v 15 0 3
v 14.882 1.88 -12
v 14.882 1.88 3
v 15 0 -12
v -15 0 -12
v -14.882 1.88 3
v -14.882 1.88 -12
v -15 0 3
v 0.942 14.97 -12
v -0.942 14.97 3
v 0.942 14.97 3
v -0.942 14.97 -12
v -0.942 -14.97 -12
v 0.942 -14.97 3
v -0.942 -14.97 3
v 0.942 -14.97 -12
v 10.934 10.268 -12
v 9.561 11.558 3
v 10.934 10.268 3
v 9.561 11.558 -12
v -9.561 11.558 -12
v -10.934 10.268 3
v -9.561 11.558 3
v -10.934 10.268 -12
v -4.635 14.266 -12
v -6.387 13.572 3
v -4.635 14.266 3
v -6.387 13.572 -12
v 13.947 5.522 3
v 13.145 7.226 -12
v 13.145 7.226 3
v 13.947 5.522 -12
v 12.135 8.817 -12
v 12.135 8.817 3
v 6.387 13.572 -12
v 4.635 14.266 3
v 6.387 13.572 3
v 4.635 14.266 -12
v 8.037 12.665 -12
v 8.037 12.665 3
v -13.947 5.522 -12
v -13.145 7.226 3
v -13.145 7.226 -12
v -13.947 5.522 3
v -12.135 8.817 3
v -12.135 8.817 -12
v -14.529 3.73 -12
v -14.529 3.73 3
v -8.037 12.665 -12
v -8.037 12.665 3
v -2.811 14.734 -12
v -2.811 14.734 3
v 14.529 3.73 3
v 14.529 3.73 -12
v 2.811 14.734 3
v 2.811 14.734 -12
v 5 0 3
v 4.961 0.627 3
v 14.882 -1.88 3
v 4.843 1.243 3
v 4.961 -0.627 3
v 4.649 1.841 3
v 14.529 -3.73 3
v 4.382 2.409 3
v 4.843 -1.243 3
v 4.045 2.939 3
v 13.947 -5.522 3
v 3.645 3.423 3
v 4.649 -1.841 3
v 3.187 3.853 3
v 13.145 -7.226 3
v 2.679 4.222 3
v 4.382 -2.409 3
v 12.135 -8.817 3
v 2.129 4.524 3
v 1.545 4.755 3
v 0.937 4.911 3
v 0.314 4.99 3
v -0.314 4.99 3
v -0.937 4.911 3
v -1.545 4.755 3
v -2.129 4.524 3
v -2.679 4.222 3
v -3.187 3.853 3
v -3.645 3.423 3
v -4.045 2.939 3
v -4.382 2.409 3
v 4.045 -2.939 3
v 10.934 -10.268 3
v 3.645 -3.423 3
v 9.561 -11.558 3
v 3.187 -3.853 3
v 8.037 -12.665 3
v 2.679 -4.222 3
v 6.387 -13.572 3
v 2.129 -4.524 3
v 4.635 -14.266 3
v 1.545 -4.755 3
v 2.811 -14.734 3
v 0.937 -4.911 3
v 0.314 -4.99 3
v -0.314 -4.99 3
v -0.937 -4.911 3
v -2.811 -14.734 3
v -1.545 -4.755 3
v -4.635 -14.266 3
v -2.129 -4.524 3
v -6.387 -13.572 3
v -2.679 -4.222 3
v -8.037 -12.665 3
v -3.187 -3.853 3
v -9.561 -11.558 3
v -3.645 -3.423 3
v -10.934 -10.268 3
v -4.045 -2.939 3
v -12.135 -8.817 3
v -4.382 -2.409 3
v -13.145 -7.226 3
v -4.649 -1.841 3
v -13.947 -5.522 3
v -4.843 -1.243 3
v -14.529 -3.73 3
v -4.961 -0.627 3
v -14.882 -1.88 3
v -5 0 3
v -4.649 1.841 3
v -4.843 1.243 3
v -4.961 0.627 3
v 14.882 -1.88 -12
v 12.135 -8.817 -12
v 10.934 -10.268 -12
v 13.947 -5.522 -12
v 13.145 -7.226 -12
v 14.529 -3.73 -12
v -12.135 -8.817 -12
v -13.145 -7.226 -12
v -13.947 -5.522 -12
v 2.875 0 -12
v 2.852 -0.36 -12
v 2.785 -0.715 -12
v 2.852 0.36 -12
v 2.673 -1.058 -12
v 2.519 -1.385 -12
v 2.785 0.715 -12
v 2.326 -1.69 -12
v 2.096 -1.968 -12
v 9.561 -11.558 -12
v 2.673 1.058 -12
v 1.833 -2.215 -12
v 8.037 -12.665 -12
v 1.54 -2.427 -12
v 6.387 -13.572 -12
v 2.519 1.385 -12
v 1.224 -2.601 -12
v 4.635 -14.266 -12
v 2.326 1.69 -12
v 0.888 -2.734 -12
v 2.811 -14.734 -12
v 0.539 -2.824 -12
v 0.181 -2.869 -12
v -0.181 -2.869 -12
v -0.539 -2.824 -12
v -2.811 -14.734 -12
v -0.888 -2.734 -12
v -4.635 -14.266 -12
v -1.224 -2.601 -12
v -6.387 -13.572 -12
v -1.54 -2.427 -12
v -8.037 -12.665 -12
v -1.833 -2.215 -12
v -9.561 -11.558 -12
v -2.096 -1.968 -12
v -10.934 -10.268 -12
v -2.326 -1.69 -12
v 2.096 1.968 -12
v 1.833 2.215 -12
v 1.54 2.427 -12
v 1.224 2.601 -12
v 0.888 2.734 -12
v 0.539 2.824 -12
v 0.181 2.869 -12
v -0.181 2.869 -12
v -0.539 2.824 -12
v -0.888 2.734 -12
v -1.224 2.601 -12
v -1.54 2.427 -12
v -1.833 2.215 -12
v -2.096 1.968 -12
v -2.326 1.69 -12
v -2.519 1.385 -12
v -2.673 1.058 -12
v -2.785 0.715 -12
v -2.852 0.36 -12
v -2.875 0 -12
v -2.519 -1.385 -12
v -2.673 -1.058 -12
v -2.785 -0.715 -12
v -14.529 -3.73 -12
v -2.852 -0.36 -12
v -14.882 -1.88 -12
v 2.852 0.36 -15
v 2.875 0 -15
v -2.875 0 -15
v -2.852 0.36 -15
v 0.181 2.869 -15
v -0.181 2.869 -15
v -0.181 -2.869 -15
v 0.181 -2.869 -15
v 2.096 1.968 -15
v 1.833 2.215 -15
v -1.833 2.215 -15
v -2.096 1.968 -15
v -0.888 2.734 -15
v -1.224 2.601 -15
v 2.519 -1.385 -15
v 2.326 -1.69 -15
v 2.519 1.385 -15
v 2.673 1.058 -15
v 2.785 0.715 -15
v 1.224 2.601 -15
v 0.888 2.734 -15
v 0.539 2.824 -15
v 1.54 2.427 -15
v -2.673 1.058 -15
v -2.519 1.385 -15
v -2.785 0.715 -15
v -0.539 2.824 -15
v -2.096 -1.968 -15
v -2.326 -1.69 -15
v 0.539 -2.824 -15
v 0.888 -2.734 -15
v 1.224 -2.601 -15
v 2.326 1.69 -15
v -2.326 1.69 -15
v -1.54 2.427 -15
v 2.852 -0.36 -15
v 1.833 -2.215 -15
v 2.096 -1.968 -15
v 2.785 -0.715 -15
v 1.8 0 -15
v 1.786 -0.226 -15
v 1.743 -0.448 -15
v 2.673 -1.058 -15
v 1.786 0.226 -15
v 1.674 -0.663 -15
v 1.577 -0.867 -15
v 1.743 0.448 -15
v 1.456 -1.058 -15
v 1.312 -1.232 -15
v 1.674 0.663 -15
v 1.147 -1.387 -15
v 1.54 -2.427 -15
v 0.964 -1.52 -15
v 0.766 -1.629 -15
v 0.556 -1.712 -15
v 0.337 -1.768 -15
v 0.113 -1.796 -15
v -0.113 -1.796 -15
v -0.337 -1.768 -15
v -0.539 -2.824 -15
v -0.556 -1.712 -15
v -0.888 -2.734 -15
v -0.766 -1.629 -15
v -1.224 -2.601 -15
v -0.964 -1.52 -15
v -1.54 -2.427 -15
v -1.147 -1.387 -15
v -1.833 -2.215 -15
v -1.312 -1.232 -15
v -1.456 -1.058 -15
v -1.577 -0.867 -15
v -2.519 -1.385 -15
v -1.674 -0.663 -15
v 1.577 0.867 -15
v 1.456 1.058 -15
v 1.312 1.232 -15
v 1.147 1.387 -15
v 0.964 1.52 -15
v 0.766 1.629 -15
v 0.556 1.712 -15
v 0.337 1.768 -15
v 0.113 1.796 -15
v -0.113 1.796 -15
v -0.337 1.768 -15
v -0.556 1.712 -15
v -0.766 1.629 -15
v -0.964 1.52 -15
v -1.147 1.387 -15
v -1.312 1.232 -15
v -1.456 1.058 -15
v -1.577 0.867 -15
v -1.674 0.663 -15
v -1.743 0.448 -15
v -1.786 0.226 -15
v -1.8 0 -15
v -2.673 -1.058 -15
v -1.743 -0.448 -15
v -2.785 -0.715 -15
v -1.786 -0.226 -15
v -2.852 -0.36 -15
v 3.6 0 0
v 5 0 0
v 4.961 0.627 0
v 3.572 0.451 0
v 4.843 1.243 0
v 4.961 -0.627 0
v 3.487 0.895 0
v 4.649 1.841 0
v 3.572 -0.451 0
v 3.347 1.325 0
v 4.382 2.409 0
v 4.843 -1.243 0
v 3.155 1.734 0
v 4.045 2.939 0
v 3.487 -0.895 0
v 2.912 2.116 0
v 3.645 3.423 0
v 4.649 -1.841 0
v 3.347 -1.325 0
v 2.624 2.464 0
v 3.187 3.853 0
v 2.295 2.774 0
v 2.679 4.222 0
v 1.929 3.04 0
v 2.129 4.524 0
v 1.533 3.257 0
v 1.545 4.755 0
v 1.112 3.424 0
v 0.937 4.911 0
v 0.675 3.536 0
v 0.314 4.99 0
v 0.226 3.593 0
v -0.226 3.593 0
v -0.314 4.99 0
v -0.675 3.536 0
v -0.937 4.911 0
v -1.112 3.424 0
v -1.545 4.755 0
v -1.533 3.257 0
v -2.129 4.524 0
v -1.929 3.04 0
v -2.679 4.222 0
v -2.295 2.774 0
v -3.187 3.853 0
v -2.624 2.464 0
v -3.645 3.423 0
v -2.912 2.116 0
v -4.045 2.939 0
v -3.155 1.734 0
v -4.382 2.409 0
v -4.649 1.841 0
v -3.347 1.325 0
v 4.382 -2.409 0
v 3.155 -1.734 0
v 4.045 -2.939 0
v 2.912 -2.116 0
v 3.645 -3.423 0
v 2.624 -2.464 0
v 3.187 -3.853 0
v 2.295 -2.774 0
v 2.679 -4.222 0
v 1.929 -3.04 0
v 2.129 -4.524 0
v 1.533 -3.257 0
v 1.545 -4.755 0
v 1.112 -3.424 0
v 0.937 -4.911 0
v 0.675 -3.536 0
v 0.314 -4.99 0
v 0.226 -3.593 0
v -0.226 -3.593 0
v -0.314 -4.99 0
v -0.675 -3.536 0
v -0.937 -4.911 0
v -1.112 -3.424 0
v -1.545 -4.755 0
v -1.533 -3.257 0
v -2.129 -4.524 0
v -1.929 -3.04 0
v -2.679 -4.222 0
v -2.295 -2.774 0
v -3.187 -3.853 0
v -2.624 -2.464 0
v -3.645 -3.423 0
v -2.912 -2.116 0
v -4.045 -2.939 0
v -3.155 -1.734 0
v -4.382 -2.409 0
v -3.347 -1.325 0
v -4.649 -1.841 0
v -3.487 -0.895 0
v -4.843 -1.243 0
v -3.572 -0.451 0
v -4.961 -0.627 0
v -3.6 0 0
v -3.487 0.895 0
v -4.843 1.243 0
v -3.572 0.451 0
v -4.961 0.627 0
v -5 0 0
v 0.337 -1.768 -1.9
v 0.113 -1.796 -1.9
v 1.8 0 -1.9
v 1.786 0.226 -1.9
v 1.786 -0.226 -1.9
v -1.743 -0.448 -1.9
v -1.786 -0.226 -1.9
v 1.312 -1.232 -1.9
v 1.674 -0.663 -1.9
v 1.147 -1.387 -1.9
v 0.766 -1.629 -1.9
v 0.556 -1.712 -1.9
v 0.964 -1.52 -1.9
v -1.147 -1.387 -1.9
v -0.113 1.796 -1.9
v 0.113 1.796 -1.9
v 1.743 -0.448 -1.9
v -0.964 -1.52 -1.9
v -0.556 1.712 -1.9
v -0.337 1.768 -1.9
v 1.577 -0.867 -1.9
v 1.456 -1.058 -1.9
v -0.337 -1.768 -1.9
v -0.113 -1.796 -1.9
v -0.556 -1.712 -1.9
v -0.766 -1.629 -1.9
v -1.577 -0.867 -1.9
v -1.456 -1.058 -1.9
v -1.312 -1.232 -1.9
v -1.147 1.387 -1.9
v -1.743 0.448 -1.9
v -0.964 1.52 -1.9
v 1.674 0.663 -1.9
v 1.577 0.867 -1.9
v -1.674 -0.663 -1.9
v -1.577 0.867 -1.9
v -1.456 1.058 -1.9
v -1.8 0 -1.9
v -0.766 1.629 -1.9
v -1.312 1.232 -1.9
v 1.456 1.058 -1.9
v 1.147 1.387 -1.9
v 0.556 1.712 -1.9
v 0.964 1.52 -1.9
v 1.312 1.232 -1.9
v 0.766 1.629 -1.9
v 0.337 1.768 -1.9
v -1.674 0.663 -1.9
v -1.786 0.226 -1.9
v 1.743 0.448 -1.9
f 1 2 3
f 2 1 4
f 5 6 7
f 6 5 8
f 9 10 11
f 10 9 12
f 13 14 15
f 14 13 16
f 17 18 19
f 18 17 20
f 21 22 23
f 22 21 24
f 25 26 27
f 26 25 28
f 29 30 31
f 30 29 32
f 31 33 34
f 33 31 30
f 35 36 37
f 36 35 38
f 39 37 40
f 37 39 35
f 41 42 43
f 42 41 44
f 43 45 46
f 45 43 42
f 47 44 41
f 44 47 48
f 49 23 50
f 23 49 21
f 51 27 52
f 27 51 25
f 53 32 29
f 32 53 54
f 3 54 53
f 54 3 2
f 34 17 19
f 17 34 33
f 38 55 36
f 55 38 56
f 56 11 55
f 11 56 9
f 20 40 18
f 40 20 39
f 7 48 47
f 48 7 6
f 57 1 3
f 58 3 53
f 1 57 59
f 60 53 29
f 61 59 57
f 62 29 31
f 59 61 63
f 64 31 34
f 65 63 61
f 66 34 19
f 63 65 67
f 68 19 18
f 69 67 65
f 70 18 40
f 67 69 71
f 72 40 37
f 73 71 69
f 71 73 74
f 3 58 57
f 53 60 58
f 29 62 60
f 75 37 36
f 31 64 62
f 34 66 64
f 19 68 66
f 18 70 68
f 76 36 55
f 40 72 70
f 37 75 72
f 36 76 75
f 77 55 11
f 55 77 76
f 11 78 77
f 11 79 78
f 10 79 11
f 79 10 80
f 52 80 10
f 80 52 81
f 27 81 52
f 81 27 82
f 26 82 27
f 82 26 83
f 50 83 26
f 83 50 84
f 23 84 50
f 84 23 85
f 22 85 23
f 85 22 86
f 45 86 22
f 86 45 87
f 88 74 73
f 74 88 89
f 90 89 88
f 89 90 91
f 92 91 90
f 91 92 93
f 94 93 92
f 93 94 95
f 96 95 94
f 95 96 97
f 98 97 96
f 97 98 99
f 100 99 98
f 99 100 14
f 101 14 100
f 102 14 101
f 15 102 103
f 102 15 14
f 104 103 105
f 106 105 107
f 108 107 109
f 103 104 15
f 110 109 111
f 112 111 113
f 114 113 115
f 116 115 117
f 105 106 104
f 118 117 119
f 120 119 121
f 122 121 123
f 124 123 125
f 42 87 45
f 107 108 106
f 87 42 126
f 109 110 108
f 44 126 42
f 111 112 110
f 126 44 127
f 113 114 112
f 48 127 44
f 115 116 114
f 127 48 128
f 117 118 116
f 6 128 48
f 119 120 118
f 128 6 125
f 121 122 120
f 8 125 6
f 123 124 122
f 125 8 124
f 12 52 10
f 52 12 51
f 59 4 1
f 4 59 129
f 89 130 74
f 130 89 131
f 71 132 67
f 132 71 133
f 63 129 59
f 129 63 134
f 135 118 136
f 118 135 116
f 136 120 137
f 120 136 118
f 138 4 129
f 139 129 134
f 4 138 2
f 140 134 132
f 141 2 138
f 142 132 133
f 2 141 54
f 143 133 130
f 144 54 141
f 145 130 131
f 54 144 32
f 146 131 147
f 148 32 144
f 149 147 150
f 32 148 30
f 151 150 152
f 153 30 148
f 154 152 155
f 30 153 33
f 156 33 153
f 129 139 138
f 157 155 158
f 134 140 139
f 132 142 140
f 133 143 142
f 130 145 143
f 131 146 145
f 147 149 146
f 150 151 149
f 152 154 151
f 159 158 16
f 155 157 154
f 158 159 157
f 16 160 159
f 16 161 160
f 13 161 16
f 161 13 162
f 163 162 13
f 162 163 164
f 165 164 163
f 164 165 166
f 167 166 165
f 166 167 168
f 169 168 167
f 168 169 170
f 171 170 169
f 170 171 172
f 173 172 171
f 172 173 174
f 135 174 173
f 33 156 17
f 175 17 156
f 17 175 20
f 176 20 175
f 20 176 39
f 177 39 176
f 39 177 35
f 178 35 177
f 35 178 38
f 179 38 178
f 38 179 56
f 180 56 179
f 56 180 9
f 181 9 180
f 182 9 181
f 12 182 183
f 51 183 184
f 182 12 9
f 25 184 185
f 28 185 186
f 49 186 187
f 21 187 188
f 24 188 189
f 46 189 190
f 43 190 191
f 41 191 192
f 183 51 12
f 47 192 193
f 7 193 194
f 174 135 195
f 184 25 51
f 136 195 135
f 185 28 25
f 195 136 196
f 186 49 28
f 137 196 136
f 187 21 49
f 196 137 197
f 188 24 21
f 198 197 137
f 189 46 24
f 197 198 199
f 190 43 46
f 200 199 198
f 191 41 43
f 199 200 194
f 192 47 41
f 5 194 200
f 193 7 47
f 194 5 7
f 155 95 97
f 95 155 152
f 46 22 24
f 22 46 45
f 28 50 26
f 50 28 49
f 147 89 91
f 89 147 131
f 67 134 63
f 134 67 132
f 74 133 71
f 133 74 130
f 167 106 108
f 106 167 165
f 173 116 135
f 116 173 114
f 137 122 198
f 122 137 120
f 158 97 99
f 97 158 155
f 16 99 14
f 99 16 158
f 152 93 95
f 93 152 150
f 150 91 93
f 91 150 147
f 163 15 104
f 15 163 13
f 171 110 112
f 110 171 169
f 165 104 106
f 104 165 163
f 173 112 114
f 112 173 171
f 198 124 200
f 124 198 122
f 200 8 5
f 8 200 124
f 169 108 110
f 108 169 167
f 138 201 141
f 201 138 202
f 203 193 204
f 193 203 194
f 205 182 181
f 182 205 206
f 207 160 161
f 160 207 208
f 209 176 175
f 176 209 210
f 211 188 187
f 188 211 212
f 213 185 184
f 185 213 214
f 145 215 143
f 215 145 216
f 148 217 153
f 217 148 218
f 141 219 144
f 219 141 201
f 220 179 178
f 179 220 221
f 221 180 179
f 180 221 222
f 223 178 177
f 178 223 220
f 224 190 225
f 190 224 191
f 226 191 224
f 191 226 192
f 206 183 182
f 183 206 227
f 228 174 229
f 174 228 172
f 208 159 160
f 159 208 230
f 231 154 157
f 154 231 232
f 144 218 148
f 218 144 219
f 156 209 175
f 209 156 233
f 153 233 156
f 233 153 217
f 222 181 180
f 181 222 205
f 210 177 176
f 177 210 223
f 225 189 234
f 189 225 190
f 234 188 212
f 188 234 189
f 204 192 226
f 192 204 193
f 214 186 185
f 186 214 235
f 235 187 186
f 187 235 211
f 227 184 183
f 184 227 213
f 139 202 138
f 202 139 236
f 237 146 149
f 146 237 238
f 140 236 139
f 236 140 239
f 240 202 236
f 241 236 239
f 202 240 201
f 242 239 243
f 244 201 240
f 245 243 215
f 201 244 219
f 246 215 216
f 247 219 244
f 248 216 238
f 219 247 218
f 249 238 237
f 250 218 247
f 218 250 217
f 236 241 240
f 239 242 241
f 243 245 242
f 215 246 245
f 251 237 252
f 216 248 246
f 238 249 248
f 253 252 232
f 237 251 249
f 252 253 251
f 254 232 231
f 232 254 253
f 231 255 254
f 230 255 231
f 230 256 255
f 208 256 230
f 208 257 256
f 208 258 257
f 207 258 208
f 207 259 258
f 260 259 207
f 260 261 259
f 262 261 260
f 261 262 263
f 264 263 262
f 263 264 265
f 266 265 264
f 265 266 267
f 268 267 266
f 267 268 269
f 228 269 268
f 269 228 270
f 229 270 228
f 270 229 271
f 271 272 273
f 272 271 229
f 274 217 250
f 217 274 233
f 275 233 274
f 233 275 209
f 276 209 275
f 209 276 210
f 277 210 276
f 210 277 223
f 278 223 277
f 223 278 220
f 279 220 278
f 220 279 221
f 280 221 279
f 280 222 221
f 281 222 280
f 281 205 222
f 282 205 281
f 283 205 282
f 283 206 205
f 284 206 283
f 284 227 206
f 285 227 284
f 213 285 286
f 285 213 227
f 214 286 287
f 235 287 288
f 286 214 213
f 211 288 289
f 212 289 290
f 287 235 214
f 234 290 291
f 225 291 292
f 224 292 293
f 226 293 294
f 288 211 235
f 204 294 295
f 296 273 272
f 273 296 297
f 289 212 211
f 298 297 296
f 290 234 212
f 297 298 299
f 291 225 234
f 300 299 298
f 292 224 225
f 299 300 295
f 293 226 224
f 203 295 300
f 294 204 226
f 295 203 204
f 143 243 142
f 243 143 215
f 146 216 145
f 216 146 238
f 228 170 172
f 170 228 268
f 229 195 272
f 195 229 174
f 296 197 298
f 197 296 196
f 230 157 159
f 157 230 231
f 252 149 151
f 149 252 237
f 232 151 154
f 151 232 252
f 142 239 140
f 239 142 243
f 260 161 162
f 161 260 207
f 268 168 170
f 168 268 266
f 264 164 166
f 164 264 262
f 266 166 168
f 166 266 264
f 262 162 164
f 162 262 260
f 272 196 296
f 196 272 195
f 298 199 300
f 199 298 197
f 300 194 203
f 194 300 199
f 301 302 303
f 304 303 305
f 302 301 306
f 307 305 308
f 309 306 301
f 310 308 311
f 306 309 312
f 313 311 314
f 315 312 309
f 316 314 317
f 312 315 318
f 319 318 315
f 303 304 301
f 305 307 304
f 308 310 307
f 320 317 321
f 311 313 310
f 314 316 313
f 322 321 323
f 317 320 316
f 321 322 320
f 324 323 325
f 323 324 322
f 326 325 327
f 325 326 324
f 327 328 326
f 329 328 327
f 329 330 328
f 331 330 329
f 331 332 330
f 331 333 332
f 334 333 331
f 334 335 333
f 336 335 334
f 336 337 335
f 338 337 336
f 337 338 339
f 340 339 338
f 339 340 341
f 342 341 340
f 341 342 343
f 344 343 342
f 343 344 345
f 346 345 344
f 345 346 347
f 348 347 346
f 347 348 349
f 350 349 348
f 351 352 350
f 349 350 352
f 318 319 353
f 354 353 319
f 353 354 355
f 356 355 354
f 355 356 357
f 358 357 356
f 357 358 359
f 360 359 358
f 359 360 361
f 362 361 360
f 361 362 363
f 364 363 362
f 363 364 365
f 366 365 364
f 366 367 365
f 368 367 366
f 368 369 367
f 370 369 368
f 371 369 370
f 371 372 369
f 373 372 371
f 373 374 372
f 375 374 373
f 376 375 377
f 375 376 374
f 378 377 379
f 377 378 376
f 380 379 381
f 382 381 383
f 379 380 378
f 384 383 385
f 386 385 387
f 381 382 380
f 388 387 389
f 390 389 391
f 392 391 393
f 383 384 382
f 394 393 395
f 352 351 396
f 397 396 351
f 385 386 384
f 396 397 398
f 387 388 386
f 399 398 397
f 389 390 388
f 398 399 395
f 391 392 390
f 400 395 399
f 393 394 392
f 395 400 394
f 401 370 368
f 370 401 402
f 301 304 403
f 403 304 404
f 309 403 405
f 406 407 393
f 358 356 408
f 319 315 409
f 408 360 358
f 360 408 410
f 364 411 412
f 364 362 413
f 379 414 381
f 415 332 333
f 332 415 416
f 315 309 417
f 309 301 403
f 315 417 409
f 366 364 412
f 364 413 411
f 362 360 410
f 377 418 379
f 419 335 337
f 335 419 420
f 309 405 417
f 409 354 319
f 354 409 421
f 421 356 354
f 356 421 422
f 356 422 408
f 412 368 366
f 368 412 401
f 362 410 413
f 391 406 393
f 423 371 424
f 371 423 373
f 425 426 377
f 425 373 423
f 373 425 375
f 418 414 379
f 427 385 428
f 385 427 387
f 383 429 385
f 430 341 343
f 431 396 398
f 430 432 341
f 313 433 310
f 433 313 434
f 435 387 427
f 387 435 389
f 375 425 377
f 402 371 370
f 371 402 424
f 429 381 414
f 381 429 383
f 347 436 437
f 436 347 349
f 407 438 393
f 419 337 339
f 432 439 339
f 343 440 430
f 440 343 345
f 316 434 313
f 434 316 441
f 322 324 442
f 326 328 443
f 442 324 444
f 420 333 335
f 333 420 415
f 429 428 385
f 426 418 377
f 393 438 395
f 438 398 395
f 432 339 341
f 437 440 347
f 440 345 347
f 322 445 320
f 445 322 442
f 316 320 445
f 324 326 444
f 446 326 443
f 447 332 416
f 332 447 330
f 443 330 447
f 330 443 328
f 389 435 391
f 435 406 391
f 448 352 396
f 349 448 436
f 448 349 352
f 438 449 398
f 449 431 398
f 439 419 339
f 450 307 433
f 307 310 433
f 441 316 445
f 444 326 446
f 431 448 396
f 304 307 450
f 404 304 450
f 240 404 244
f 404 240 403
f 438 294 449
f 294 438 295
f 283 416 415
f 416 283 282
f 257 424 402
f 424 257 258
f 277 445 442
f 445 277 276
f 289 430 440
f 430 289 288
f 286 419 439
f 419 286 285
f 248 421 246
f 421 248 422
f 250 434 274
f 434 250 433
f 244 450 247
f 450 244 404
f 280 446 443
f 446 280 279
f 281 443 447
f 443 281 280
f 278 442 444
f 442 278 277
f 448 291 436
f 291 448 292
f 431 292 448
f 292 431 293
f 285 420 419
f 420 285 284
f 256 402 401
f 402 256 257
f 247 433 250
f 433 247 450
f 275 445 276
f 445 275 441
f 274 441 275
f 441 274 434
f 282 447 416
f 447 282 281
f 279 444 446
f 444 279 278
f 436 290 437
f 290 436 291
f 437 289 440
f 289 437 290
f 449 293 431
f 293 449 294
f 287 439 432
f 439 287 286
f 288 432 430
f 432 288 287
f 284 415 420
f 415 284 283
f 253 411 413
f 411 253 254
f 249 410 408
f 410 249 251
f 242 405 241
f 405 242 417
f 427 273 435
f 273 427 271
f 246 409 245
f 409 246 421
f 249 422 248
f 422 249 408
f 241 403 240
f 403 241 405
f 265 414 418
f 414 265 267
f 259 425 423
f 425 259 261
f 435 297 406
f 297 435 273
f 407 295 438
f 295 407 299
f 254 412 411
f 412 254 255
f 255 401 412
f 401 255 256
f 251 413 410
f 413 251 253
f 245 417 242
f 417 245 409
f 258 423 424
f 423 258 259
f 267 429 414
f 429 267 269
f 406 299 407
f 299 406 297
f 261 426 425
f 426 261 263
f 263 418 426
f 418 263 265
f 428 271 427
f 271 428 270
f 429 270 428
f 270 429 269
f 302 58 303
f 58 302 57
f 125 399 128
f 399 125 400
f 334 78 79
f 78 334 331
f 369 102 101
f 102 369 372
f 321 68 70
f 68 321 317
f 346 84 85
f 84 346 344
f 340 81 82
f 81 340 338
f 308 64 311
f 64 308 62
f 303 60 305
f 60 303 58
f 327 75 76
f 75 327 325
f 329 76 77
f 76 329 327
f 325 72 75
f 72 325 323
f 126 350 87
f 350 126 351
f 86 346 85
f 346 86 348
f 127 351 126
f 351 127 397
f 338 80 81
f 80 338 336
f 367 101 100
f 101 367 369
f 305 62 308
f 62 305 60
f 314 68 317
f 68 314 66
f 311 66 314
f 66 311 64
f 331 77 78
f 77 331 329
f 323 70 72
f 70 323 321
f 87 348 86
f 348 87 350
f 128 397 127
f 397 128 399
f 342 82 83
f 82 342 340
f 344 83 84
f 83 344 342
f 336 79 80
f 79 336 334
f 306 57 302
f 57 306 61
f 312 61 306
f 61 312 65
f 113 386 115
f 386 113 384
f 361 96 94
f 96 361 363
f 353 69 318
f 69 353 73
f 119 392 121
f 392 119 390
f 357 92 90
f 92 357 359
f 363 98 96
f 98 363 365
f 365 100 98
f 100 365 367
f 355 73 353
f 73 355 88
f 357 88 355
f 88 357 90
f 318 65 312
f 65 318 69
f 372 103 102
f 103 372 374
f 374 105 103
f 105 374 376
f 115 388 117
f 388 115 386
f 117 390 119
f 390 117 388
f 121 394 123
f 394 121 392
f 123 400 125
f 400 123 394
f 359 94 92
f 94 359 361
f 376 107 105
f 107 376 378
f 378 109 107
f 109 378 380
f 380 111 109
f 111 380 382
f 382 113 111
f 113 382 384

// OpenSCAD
$fn = 50;

difference() {
	union() {
		translate(v = [0, 0, -12.0]) {
			cylinder(h = 15, r = 15.0);
		}
		#translate(v = [0, 0, -15.0]) {
			cylinder(h = 15, r = 2.875);
		}
	}
	union() {
		translate(v = [0, 0, 0]) {
			rotate(a = [0, 0, 0]) {
				difference() {
					union() {
						translate(v = [0, 0, -15.0]) {
							cylinder(h = 15, r = 1.5);
						}
						translate(v = [0, 0, -1.9]) {
							cylinder(h = 1.9, r1 = 1.8, r2 = 3.6);
						}
						translate(v = [0, 0, -15.0]) {
							cylinder(h = 15, r = 1.8);
						}
						translate(v = [0, 0, -15.0]) {
							cylinder(h = 15, r = 1.5);
						}
					}
					union();
				}
			}
		}
		#cylinder(h = 3, r = 5.0);
	}
}
